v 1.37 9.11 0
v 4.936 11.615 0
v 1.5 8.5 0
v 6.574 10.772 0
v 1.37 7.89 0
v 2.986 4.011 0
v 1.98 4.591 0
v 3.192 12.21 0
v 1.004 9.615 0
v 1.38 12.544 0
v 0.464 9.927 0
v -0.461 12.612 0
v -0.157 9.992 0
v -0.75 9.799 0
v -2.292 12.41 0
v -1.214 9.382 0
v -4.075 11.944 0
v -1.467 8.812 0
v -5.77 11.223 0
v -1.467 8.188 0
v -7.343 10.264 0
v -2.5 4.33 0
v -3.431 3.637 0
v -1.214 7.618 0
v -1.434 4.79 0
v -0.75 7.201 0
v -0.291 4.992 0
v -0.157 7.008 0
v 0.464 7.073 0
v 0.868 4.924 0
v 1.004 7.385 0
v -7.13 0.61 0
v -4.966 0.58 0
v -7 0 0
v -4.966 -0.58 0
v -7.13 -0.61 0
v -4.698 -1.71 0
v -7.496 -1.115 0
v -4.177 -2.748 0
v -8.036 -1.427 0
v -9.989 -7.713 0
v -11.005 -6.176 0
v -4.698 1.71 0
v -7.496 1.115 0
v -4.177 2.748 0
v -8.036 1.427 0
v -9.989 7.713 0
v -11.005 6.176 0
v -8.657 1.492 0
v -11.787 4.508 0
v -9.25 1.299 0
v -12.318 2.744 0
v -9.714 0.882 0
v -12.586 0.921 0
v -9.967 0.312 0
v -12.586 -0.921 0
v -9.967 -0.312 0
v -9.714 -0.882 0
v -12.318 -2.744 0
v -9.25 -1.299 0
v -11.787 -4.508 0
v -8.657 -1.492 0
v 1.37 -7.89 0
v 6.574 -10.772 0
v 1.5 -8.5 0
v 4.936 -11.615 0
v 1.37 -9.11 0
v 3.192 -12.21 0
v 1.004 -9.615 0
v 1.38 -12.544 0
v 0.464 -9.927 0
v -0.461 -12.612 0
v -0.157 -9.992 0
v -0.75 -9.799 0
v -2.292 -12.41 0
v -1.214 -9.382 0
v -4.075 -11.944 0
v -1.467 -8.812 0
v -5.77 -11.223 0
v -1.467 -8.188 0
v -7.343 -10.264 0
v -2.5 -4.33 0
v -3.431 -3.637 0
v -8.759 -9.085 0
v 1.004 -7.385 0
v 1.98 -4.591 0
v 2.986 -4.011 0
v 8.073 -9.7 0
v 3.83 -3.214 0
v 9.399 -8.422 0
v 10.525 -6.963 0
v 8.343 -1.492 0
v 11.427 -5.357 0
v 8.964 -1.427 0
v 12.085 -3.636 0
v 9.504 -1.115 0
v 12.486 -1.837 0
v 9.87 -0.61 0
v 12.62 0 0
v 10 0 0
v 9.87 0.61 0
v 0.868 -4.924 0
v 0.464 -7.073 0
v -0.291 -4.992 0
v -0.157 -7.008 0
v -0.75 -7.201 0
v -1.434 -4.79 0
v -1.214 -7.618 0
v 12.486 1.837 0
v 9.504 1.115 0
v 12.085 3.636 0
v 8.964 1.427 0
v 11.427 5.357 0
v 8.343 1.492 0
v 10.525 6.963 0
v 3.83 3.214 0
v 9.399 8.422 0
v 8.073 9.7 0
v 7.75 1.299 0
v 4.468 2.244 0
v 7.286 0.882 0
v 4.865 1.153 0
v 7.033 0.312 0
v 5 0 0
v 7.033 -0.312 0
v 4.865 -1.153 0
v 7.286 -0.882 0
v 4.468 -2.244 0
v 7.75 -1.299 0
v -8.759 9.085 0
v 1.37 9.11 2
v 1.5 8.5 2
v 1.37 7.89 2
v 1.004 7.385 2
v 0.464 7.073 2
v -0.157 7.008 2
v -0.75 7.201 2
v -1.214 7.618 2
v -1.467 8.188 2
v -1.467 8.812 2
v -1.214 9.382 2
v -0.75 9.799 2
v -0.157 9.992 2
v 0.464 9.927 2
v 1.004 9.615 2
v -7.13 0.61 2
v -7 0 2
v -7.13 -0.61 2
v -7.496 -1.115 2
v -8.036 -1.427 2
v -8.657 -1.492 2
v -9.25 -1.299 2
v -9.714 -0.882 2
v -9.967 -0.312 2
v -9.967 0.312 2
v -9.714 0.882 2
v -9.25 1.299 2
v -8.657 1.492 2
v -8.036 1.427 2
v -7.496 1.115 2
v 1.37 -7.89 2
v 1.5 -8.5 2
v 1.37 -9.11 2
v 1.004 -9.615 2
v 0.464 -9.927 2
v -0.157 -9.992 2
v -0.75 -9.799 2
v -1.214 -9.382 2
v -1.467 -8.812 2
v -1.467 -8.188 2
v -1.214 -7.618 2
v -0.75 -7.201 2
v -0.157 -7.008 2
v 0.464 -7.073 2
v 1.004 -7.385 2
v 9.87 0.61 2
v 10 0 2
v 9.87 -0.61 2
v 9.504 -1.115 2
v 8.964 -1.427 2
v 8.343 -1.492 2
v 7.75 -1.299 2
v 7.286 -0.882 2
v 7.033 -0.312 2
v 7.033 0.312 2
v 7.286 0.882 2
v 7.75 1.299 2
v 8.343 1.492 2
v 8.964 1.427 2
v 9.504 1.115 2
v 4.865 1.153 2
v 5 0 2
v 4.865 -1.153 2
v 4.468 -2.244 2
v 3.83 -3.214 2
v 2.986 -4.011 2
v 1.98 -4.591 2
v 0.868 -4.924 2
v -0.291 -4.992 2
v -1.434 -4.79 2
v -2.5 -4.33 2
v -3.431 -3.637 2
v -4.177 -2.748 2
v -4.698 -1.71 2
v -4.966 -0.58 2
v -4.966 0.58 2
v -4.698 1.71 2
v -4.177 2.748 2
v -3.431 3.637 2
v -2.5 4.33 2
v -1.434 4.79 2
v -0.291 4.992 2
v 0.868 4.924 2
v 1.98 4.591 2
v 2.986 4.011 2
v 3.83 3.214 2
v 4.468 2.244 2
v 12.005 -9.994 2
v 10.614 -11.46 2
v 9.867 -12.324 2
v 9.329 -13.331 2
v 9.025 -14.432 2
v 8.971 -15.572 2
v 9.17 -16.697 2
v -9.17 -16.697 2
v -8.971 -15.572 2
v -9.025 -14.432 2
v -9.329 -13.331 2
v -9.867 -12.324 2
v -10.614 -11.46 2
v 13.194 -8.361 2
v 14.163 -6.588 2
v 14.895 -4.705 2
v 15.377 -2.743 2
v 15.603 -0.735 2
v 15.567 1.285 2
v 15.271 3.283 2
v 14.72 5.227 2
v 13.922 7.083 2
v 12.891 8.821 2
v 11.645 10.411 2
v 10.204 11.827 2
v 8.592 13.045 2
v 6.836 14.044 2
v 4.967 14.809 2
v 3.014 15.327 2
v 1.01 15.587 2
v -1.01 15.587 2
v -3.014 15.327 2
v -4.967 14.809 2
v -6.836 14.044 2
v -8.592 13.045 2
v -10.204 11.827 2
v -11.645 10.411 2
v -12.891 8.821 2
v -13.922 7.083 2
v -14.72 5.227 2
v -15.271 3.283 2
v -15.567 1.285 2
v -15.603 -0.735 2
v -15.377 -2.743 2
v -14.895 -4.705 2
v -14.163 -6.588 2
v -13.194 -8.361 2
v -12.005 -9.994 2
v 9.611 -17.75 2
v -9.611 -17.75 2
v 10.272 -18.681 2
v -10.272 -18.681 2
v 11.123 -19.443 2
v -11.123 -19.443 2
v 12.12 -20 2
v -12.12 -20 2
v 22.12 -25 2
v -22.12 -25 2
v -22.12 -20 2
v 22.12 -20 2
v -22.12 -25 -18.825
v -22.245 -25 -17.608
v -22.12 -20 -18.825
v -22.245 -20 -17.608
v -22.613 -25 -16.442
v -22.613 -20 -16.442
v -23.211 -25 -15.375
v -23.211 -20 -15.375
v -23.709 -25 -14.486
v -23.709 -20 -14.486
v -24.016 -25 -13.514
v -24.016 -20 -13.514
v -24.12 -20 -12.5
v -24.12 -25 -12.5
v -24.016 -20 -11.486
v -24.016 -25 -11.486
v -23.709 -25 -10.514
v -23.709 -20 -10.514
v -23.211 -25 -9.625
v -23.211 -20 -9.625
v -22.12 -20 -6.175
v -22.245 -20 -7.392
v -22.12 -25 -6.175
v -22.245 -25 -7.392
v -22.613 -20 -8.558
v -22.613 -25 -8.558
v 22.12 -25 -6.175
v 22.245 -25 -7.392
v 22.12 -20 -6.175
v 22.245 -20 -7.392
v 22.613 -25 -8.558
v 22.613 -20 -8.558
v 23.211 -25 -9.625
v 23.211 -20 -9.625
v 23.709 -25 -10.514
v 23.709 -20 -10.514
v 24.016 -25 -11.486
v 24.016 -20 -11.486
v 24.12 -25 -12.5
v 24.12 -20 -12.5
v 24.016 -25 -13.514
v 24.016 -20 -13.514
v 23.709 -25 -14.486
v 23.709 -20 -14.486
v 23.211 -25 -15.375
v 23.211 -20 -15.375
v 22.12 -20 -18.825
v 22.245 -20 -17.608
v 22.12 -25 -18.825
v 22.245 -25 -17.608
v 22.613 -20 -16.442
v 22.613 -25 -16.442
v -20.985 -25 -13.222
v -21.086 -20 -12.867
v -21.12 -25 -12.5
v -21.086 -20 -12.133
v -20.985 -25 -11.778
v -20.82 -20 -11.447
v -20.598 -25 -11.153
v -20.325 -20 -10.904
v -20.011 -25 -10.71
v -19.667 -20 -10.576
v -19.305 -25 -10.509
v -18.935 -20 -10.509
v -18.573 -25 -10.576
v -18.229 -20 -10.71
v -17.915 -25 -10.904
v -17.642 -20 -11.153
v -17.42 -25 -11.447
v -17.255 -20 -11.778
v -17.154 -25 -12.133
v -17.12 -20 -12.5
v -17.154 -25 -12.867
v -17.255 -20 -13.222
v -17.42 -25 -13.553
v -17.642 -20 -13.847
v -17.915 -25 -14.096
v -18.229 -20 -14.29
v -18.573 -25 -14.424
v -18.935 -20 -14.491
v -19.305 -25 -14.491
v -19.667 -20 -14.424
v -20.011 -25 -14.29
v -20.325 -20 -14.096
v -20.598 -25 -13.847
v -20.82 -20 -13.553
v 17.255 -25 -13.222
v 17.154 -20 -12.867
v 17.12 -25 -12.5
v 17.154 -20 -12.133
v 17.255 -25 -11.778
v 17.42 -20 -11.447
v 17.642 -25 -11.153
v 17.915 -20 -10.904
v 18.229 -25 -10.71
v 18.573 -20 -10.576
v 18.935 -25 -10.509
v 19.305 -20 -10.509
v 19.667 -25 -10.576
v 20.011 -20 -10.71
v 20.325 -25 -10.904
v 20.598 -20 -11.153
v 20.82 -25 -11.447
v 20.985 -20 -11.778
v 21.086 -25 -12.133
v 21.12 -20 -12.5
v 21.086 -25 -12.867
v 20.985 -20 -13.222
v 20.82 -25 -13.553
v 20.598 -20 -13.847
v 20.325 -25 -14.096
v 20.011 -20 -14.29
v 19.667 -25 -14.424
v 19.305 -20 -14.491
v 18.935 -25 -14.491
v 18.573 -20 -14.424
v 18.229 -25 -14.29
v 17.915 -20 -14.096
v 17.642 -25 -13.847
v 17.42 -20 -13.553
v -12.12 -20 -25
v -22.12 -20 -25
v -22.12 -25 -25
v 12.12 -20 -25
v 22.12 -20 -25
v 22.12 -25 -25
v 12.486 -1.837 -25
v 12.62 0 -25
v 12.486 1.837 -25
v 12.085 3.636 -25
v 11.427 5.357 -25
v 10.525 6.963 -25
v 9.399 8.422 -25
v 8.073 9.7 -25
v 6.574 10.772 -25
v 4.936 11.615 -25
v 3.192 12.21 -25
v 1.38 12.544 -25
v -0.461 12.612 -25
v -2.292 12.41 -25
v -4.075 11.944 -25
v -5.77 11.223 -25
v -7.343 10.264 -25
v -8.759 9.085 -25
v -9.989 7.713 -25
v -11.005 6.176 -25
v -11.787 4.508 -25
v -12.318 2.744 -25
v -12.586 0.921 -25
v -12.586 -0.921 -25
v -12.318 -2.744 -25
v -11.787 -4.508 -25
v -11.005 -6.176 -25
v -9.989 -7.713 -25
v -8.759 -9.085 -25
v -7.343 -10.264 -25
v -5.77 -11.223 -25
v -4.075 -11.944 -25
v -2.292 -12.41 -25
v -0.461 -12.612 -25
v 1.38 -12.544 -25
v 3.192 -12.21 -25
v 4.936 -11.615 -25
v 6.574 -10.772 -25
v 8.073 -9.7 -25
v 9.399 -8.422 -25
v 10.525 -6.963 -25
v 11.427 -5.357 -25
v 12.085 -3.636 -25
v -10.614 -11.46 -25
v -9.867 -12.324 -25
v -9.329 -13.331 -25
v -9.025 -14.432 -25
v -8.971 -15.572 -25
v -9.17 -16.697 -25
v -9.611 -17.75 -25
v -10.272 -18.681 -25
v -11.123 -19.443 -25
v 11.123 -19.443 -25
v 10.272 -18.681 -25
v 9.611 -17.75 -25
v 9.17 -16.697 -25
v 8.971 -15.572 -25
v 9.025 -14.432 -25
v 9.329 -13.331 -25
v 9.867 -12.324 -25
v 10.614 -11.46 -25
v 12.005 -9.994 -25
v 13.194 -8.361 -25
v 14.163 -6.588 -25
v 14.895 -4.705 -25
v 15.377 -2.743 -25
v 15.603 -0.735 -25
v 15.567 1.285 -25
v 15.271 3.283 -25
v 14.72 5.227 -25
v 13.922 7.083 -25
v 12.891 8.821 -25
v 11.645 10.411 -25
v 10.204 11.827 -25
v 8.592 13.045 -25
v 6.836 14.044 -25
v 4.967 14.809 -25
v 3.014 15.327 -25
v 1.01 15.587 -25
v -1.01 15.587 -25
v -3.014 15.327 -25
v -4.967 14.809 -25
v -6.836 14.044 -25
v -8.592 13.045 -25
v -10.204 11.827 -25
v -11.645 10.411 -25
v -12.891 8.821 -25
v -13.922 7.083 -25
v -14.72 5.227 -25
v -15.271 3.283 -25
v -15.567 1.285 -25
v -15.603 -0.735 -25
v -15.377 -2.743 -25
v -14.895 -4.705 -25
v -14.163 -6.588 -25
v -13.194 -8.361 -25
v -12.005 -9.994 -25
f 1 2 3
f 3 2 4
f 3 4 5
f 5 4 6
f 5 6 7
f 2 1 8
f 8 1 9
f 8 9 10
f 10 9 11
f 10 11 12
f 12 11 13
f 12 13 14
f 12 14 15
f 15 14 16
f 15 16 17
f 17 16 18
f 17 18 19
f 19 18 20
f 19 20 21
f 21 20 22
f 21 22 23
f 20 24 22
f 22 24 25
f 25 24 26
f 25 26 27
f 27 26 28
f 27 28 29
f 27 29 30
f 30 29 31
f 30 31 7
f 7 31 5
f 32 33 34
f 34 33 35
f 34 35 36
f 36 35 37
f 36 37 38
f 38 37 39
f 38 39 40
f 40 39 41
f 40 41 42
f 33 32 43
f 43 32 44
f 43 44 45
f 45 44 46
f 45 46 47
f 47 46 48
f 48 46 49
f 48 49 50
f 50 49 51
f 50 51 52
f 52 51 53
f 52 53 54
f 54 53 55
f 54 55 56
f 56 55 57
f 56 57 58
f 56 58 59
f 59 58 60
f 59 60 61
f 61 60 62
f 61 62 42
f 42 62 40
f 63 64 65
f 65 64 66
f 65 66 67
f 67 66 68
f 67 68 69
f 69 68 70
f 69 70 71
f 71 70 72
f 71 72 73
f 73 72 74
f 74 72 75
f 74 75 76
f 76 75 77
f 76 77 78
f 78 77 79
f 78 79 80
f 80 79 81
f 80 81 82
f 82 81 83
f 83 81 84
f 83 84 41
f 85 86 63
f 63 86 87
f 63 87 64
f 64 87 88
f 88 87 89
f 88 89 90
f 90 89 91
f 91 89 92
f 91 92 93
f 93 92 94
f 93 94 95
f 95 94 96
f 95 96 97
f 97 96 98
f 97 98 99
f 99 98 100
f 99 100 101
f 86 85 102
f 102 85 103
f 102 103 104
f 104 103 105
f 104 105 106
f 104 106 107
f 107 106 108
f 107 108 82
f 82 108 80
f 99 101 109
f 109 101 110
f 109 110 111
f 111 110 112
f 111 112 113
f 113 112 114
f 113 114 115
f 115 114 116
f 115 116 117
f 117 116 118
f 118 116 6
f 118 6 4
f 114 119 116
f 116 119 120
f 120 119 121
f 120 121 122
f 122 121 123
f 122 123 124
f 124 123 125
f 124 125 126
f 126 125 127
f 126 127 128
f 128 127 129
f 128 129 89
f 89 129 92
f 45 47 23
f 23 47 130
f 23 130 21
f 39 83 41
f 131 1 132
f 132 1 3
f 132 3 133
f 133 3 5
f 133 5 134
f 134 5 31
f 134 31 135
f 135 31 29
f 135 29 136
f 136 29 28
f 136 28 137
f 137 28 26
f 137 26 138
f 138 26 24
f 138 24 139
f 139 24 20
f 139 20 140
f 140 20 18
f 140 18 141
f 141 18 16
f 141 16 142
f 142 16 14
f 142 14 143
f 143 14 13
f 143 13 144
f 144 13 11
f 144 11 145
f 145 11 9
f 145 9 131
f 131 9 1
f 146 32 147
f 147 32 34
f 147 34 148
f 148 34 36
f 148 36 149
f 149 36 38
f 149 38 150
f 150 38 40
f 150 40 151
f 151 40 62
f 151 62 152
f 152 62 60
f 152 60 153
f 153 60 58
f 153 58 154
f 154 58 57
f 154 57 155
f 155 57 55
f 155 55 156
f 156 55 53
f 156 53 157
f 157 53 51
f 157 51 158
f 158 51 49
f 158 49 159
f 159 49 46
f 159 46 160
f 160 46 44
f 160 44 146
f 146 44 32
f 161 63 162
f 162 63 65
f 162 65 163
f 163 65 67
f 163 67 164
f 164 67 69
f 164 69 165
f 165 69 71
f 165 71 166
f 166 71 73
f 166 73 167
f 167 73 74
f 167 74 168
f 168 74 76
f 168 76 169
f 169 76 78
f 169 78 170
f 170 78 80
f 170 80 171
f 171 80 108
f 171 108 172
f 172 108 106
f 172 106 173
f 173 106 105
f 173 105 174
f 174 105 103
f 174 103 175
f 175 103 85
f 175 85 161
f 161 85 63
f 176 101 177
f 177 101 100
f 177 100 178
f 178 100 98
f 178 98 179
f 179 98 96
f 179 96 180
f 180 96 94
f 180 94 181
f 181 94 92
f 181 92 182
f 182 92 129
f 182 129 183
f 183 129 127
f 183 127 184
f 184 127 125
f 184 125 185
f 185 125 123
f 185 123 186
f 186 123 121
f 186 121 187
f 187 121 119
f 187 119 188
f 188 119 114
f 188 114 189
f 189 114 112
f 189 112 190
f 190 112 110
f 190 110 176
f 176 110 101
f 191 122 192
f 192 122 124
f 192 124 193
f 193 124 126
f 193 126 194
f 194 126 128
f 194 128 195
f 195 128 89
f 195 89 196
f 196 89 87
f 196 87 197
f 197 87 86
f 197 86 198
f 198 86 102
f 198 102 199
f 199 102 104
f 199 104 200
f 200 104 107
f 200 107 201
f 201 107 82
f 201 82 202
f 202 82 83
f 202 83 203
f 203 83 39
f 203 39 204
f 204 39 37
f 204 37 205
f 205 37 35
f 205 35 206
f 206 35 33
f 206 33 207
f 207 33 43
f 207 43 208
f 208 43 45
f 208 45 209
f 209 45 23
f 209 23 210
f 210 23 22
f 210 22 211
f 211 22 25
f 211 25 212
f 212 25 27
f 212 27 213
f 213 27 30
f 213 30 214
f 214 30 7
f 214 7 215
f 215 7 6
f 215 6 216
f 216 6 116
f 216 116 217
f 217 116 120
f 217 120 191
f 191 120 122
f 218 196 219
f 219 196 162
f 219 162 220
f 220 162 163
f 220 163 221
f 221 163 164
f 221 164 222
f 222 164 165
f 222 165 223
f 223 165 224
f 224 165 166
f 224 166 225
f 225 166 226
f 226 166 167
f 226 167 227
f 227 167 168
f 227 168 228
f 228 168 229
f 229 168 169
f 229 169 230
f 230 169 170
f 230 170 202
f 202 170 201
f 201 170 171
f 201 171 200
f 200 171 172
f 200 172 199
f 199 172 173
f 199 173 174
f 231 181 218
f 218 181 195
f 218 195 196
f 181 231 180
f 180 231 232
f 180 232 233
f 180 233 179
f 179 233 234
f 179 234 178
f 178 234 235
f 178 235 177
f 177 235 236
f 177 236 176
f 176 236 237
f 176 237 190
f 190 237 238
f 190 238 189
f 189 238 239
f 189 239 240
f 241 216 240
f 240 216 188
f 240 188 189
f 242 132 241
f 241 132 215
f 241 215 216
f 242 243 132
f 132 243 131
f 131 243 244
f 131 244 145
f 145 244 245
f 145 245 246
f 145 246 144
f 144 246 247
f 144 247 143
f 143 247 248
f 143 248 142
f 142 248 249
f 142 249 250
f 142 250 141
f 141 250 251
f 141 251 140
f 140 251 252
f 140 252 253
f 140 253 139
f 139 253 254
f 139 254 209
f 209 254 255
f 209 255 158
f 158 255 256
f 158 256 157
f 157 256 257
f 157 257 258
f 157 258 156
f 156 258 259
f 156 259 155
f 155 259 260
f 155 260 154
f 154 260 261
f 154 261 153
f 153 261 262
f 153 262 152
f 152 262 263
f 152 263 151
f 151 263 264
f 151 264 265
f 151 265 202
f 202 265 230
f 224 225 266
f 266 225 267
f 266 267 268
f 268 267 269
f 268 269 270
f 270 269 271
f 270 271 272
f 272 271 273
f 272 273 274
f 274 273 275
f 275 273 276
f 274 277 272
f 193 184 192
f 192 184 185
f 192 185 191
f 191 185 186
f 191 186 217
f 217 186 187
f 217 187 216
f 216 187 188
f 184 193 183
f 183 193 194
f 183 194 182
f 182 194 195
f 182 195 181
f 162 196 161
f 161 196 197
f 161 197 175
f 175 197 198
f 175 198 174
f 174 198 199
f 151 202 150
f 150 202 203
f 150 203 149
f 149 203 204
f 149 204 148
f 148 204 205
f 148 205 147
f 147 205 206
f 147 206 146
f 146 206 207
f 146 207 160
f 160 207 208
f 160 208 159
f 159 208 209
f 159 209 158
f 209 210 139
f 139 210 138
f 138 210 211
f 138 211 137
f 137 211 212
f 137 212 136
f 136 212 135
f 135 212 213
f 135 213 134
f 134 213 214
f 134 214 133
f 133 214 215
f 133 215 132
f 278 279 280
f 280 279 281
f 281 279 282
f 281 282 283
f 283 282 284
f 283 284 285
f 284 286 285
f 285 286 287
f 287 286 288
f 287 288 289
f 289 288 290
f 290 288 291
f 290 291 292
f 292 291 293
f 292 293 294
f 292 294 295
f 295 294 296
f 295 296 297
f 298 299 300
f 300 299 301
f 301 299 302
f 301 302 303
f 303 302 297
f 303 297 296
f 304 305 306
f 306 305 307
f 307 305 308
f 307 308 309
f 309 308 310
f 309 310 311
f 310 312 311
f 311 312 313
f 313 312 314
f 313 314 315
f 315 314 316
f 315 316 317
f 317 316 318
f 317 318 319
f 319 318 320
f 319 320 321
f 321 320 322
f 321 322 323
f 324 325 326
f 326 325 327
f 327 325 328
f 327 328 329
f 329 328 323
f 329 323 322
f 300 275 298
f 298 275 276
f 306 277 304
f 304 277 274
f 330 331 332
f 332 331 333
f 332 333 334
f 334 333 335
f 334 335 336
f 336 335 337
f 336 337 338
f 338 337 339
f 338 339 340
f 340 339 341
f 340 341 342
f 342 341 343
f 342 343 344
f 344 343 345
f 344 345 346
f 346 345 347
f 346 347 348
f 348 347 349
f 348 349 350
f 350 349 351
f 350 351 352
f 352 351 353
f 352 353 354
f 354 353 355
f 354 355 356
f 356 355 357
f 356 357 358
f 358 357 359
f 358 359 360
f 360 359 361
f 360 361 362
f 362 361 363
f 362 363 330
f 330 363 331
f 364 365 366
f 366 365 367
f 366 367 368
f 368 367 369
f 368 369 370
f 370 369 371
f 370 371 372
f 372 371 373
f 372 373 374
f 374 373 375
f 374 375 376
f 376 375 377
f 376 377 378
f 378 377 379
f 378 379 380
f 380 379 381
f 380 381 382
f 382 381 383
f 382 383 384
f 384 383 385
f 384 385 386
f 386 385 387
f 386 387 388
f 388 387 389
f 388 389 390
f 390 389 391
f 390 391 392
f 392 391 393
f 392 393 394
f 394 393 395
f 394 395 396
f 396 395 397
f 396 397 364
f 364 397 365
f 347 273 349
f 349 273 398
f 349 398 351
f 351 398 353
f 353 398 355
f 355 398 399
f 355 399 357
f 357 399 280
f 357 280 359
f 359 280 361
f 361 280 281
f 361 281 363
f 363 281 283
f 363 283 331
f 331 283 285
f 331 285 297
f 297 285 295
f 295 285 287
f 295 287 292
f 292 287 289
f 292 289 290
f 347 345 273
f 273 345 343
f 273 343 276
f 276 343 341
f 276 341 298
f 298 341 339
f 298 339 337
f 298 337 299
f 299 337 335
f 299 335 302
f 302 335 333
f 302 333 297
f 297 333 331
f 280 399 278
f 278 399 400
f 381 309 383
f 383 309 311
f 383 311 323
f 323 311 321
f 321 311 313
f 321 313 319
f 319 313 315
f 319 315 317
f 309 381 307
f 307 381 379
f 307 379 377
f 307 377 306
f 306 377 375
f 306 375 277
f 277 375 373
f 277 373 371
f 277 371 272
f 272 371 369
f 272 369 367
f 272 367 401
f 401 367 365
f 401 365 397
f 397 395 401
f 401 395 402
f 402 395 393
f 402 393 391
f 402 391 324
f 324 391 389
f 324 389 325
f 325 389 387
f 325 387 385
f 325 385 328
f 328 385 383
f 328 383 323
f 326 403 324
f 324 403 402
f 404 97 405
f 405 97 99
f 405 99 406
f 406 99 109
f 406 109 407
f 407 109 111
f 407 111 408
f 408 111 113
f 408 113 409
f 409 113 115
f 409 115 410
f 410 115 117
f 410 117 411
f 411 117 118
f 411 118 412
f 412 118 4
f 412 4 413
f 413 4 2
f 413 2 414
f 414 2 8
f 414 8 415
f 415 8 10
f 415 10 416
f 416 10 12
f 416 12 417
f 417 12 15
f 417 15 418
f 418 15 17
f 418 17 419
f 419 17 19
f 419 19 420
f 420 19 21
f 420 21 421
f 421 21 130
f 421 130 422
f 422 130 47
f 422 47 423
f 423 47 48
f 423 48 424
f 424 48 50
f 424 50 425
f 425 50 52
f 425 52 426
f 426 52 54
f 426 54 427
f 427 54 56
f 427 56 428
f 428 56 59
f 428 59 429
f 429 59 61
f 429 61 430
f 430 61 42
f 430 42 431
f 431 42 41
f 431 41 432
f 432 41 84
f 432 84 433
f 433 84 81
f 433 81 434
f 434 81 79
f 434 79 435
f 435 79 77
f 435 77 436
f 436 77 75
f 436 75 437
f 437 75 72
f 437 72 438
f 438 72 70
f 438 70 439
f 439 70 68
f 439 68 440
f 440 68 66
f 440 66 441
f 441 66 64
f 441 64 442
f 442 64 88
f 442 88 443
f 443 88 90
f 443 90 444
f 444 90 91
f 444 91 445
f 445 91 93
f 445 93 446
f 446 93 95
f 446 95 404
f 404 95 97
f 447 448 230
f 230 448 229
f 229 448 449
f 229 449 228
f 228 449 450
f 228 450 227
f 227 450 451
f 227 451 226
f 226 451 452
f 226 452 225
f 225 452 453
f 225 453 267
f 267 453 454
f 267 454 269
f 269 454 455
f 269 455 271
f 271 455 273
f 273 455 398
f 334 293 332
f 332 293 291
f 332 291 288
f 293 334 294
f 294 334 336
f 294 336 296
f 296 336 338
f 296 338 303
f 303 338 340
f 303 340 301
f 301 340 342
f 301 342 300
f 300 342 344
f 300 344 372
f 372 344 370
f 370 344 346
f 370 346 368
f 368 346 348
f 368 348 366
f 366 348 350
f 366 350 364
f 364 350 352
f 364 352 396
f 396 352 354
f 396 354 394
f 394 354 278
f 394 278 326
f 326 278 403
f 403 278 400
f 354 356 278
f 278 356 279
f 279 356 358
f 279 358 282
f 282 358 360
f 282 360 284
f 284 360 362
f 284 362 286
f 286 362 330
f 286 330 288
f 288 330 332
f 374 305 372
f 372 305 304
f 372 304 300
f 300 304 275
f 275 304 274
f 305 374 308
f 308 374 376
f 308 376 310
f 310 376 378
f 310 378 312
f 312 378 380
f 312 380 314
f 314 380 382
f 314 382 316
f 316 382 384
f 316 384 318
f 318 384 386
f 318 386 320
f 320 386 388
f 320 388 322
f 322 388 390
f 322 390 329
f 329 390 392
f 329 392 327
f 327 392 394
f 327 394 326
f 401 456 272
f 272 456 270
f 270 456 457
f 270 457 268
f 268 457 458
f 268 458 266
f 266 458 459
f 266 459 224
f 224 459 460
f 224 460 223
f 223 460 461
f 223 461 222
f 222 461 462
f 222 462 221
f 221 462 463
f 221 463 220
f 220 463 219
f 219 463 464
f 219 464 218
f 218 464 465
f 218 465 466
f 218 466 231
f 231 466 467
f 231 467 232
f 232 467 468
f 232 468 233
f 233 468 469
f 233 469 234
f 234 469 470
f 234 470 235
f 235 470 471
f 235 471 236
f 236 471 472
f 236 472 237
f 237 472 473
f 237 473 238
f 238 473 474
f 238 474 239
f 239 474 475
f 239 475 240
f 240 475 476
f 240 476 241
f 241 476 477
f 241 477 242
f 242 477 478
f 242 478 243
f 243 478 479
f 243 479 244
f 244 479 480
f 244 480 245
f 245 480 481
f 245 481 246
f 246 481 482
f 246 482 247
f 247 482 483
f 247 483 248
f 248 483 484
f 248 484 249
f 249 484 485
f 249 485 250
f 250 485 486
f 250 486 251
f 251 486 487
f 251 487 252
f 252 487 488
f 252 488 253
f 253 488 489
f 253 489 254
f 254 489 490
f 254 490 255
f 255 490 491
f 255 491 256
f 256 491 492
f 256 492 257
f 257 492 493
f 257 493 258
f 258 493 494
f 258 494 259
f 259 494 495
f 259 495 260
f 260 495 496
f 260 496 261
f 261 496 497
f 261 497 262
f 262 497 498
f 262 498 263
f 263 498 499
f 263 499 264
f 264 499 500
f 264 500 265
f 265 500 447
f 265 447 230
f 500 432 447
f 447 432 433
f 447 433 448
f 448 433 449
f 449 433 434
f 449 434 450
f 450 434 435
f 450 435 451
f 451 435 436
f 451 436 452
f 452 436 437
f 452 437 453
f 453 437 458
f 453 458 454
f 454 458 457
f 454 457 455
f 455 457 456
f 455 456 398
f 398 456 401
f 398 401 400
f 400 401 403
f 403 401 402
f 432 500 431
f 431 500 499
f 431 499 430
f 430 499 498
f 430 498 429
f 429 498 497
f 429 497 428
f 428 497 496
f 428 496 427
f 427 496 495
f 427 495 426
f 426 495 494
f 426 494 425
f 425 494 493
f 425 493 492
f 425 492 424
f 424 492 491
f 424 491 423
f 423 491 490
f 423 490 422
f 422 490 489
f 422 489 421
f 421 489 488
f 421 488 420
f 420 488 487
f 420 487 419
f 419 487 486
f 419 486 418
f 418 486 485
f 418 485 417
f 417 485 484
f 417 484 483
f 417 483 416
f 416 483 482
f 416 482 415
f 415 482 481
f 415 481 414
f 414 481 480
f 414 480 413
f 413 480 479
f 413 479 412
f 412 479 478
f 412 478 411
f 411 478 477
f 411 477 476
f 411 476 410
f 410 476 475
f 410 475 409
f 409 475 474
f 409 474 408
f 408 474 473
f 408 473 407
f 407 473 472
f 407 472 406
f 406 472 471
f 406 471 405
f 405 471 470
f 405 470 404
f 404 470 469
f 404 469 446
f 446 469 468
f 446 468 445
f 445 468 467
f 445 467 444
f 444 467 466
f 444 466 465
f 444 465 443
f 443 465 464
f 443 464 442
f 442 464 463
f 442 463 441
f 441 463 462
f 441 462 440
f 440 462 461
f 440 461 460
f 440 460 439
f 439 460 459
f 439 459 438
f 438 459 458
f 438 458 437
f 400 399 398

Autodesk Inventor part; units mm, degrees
ref_plane "YZ Plane" through (0, 0, 0) normal (1, 0, 0) x (0, 1, 0)
ref_plane "XZ Plane" through (0, 0, 0) normal (0, 1, 0) x (-1, 0, 0)
ref_plane "XY Plane" through (0, 0, 0) normal (0, 0, 1) x (1, 0, 0)
sketch "Sketch1" plane through (0, 0, 0) normal (0, 0, 1) x (1, 0, 0)
  circle A0 centre (0, 0) radius 12.12 projected
  circle A1 centre (0, 0) radius 12.62
  arc A2 (10.6143, -11.4595) -> (-10.6143, -11.4595) centre (0, 0) ccw
  line L0 (-12.12, -25) -> (12.12, -25)
  line L1 (12.12, 0) -> (12.12, -25.5944) construction
  line L2 (-12.12, 0) -> (-12.12, -25) construction
  line L3 (-12.12, -25) -> (12.12, -25)
  line L4 (12.12, -25) -> (12.12, -20)
  line L5 (12.12, -20) -> (-12.12, -20)
  line L6 (-12.12, -20) -> (-12.12, -25)
  arc A3 (-12.12, -20) -> (-10.6143, -11.4595) centre (-14.12, -15.2444) ccw
  line L7 (0, 0) -> (0, 15.62) construction
  arc A4 (10.6143, -11.4595) -> (12.12, -20) centre (14.12, -15.2444) ccw
  point P0 (12.12, -25)
  dimension "d0" = 0.5
  dimension "d1" = 3
  dimension "d2" = 25
  dimension "d3" = 5
  dimension "d4" = 2
extrude "Extrusion1" add sketch "Sketch1" against normal blind 25 contours A4 L5 A3 A2 | L4 L0 L6 L5
sketch "Sketch2" plane through (12.12, -25, 0) normal (1, 0, 0) x (0, 0, -1)
  line L0 (0, 0) -> (0, 5) projected
  line L1 (0, 0) -> (25, 0) projected
  line L2 (25, 5) -> (25, 0) projected
  line L3 (0, 5) -> (25, 5) projected
  point P0 (0, 25)
extrude "Extrusion2" add sketch "Sketch2" along normal blind 10
sketch "Sketch3" plane through (-12.12, -25, 0) normal (-1, 0, 0) x (0, 0, 1)
  line L0 (0, 5) -> (0, 0) projected
  line L1 (0, 5) -> (-25, 5) projected
  line L2 (-25, 0) -> (-25, 5) projected
  line L3 (0, 0) -> (-25, 0) projected
  point P0 (0, 25)
extrude "Extrusion3" add sketch "Sketch3" along normal blind 10
sketch "Sketch4" plane through (12.12, -20, 0) normal (0, 1, 0) x (1, 0, 0)
  circle A0 centre (7, 12.5) radius 2
  circle A1 centre (-31.24, 12.5) radius 2
  line L0 (7, 12.5) -> (-31.24, 12.5) construction
  line L1 (10, 25) -> (10, 0) projected
  line L2 (7, 12.5) -> (10, 12.5) construction
  line L3 (10, 0) -> (10, 25) projected
  line L4 (-34.24, 0) -> (-34.24, 25) projected
  circle A2 centre (7, 12.5) radius 5
  circle A3 centre (-31.24, 12.5) radius 5
  point P0 (-12.12, 0)
  point P1 (-34.24, 16.5)
  point P2 (-34.24, 8.5)
  point P3 (10, 16.5)
  point P4 (10, 8.5)
  dimension "d11" = 4
  dimension "d12" = 4
  dimension "d13" = 3
  dimension "d14" = 3
  dimension "d17" = 10
  dimension "d18" = 10
extrude "Extrusion4" cut sketch "Sketch4" against normal through all contours A0 | A1
extrude "Extrusion5" add sketch "Sketch4" against normal up to surface (5 mm away) contours A2 L1 | A3 L4 picked at (10.2796, 11.4321) picked at (-35.0103, 13.5108)
fillet "Fillet1" radius 6 4 edges at (22.12, -22.5, -8.5) (22.12, -22.5, -16.5) (-22.12, -22.5, -8.5) (-22.12, -22.5, -16.5)
sketch "Sketch5" plane through (0, 0, 0) normal (0, 0, 1) x (1, 0, 0)
  arc A0 (10.6143, -11.4595) -> (-10.6143, -11.4595) centre (0, 0) ccw projected
  arc A1 (-12.12, -20) -> (-10.6143, -11.4595) centre (-14.12, -15.2444) ccw projected
  line L0 (-12.12, -20) -> (-22.12, -20) projected
  line L1 (-22.12, -25) -> (-22.12, -20) projected
  line L2 (-22.12, -25) -> (22.12, -25) projected
  line L3 (22.12, -20) -> (22.12, -25) projected
  line L4 (12.12, -20) -> (22.12, -20) projected
  arc A2 (10.6143, -11.4595) -> (12.12, -20) centre (14.12, -15.2444) ccw projected
  circle A3 centre (0, 0) radius 12.62 projected
  circle A4 centre (0, 0) radius 8.5 construction
  circle A5 centre (0, 8.5) radius 1.5
  line L5 (0, 0) -> (0, 8.5) construction
  circle A6 centre (-8.5, 0) radius 1.5
  circle A7 centre (0, -8.5) radius 1.5
  circle A8 centre (8.5, 0) radius 1.5
  circle A9 centre (0, 0) radius 5
  dimension "d22" = 17
  dimension "d23" = 3
  dimension "d26" = 360
  dimension "d28" = 10
extrude "Extrusion6" add sketch "Sketch5" along normal blind 2 contours A2 L4 L3 L2 L1 L0 A1 A0 | A3
equation "\"d1\" = TB"
equation "\"d2\" = HSE"
equation "\"d5\" = PB"
equation "\"DER\" = 22"
equation "\"HR\" = 7"
equation "\"DIR\" = 8"
equation "\"DEM\" = 4"
equation "\"Dmarc\" = 17.5"
equation "\"Bsm\" = 22.5"
equation "\"Hsm\" = 12"
equation "\"Lsm\" = 21"
equation "\"Dsc\" = 5"
equation "\"RC\" = 7"
equation "\"TB\" = 3"
equation "\"HSE\" = 25"
equation "\"PB\" = 25"
equation "\"LMaSP\" = 46.5"
properties part number "BaseM1"
